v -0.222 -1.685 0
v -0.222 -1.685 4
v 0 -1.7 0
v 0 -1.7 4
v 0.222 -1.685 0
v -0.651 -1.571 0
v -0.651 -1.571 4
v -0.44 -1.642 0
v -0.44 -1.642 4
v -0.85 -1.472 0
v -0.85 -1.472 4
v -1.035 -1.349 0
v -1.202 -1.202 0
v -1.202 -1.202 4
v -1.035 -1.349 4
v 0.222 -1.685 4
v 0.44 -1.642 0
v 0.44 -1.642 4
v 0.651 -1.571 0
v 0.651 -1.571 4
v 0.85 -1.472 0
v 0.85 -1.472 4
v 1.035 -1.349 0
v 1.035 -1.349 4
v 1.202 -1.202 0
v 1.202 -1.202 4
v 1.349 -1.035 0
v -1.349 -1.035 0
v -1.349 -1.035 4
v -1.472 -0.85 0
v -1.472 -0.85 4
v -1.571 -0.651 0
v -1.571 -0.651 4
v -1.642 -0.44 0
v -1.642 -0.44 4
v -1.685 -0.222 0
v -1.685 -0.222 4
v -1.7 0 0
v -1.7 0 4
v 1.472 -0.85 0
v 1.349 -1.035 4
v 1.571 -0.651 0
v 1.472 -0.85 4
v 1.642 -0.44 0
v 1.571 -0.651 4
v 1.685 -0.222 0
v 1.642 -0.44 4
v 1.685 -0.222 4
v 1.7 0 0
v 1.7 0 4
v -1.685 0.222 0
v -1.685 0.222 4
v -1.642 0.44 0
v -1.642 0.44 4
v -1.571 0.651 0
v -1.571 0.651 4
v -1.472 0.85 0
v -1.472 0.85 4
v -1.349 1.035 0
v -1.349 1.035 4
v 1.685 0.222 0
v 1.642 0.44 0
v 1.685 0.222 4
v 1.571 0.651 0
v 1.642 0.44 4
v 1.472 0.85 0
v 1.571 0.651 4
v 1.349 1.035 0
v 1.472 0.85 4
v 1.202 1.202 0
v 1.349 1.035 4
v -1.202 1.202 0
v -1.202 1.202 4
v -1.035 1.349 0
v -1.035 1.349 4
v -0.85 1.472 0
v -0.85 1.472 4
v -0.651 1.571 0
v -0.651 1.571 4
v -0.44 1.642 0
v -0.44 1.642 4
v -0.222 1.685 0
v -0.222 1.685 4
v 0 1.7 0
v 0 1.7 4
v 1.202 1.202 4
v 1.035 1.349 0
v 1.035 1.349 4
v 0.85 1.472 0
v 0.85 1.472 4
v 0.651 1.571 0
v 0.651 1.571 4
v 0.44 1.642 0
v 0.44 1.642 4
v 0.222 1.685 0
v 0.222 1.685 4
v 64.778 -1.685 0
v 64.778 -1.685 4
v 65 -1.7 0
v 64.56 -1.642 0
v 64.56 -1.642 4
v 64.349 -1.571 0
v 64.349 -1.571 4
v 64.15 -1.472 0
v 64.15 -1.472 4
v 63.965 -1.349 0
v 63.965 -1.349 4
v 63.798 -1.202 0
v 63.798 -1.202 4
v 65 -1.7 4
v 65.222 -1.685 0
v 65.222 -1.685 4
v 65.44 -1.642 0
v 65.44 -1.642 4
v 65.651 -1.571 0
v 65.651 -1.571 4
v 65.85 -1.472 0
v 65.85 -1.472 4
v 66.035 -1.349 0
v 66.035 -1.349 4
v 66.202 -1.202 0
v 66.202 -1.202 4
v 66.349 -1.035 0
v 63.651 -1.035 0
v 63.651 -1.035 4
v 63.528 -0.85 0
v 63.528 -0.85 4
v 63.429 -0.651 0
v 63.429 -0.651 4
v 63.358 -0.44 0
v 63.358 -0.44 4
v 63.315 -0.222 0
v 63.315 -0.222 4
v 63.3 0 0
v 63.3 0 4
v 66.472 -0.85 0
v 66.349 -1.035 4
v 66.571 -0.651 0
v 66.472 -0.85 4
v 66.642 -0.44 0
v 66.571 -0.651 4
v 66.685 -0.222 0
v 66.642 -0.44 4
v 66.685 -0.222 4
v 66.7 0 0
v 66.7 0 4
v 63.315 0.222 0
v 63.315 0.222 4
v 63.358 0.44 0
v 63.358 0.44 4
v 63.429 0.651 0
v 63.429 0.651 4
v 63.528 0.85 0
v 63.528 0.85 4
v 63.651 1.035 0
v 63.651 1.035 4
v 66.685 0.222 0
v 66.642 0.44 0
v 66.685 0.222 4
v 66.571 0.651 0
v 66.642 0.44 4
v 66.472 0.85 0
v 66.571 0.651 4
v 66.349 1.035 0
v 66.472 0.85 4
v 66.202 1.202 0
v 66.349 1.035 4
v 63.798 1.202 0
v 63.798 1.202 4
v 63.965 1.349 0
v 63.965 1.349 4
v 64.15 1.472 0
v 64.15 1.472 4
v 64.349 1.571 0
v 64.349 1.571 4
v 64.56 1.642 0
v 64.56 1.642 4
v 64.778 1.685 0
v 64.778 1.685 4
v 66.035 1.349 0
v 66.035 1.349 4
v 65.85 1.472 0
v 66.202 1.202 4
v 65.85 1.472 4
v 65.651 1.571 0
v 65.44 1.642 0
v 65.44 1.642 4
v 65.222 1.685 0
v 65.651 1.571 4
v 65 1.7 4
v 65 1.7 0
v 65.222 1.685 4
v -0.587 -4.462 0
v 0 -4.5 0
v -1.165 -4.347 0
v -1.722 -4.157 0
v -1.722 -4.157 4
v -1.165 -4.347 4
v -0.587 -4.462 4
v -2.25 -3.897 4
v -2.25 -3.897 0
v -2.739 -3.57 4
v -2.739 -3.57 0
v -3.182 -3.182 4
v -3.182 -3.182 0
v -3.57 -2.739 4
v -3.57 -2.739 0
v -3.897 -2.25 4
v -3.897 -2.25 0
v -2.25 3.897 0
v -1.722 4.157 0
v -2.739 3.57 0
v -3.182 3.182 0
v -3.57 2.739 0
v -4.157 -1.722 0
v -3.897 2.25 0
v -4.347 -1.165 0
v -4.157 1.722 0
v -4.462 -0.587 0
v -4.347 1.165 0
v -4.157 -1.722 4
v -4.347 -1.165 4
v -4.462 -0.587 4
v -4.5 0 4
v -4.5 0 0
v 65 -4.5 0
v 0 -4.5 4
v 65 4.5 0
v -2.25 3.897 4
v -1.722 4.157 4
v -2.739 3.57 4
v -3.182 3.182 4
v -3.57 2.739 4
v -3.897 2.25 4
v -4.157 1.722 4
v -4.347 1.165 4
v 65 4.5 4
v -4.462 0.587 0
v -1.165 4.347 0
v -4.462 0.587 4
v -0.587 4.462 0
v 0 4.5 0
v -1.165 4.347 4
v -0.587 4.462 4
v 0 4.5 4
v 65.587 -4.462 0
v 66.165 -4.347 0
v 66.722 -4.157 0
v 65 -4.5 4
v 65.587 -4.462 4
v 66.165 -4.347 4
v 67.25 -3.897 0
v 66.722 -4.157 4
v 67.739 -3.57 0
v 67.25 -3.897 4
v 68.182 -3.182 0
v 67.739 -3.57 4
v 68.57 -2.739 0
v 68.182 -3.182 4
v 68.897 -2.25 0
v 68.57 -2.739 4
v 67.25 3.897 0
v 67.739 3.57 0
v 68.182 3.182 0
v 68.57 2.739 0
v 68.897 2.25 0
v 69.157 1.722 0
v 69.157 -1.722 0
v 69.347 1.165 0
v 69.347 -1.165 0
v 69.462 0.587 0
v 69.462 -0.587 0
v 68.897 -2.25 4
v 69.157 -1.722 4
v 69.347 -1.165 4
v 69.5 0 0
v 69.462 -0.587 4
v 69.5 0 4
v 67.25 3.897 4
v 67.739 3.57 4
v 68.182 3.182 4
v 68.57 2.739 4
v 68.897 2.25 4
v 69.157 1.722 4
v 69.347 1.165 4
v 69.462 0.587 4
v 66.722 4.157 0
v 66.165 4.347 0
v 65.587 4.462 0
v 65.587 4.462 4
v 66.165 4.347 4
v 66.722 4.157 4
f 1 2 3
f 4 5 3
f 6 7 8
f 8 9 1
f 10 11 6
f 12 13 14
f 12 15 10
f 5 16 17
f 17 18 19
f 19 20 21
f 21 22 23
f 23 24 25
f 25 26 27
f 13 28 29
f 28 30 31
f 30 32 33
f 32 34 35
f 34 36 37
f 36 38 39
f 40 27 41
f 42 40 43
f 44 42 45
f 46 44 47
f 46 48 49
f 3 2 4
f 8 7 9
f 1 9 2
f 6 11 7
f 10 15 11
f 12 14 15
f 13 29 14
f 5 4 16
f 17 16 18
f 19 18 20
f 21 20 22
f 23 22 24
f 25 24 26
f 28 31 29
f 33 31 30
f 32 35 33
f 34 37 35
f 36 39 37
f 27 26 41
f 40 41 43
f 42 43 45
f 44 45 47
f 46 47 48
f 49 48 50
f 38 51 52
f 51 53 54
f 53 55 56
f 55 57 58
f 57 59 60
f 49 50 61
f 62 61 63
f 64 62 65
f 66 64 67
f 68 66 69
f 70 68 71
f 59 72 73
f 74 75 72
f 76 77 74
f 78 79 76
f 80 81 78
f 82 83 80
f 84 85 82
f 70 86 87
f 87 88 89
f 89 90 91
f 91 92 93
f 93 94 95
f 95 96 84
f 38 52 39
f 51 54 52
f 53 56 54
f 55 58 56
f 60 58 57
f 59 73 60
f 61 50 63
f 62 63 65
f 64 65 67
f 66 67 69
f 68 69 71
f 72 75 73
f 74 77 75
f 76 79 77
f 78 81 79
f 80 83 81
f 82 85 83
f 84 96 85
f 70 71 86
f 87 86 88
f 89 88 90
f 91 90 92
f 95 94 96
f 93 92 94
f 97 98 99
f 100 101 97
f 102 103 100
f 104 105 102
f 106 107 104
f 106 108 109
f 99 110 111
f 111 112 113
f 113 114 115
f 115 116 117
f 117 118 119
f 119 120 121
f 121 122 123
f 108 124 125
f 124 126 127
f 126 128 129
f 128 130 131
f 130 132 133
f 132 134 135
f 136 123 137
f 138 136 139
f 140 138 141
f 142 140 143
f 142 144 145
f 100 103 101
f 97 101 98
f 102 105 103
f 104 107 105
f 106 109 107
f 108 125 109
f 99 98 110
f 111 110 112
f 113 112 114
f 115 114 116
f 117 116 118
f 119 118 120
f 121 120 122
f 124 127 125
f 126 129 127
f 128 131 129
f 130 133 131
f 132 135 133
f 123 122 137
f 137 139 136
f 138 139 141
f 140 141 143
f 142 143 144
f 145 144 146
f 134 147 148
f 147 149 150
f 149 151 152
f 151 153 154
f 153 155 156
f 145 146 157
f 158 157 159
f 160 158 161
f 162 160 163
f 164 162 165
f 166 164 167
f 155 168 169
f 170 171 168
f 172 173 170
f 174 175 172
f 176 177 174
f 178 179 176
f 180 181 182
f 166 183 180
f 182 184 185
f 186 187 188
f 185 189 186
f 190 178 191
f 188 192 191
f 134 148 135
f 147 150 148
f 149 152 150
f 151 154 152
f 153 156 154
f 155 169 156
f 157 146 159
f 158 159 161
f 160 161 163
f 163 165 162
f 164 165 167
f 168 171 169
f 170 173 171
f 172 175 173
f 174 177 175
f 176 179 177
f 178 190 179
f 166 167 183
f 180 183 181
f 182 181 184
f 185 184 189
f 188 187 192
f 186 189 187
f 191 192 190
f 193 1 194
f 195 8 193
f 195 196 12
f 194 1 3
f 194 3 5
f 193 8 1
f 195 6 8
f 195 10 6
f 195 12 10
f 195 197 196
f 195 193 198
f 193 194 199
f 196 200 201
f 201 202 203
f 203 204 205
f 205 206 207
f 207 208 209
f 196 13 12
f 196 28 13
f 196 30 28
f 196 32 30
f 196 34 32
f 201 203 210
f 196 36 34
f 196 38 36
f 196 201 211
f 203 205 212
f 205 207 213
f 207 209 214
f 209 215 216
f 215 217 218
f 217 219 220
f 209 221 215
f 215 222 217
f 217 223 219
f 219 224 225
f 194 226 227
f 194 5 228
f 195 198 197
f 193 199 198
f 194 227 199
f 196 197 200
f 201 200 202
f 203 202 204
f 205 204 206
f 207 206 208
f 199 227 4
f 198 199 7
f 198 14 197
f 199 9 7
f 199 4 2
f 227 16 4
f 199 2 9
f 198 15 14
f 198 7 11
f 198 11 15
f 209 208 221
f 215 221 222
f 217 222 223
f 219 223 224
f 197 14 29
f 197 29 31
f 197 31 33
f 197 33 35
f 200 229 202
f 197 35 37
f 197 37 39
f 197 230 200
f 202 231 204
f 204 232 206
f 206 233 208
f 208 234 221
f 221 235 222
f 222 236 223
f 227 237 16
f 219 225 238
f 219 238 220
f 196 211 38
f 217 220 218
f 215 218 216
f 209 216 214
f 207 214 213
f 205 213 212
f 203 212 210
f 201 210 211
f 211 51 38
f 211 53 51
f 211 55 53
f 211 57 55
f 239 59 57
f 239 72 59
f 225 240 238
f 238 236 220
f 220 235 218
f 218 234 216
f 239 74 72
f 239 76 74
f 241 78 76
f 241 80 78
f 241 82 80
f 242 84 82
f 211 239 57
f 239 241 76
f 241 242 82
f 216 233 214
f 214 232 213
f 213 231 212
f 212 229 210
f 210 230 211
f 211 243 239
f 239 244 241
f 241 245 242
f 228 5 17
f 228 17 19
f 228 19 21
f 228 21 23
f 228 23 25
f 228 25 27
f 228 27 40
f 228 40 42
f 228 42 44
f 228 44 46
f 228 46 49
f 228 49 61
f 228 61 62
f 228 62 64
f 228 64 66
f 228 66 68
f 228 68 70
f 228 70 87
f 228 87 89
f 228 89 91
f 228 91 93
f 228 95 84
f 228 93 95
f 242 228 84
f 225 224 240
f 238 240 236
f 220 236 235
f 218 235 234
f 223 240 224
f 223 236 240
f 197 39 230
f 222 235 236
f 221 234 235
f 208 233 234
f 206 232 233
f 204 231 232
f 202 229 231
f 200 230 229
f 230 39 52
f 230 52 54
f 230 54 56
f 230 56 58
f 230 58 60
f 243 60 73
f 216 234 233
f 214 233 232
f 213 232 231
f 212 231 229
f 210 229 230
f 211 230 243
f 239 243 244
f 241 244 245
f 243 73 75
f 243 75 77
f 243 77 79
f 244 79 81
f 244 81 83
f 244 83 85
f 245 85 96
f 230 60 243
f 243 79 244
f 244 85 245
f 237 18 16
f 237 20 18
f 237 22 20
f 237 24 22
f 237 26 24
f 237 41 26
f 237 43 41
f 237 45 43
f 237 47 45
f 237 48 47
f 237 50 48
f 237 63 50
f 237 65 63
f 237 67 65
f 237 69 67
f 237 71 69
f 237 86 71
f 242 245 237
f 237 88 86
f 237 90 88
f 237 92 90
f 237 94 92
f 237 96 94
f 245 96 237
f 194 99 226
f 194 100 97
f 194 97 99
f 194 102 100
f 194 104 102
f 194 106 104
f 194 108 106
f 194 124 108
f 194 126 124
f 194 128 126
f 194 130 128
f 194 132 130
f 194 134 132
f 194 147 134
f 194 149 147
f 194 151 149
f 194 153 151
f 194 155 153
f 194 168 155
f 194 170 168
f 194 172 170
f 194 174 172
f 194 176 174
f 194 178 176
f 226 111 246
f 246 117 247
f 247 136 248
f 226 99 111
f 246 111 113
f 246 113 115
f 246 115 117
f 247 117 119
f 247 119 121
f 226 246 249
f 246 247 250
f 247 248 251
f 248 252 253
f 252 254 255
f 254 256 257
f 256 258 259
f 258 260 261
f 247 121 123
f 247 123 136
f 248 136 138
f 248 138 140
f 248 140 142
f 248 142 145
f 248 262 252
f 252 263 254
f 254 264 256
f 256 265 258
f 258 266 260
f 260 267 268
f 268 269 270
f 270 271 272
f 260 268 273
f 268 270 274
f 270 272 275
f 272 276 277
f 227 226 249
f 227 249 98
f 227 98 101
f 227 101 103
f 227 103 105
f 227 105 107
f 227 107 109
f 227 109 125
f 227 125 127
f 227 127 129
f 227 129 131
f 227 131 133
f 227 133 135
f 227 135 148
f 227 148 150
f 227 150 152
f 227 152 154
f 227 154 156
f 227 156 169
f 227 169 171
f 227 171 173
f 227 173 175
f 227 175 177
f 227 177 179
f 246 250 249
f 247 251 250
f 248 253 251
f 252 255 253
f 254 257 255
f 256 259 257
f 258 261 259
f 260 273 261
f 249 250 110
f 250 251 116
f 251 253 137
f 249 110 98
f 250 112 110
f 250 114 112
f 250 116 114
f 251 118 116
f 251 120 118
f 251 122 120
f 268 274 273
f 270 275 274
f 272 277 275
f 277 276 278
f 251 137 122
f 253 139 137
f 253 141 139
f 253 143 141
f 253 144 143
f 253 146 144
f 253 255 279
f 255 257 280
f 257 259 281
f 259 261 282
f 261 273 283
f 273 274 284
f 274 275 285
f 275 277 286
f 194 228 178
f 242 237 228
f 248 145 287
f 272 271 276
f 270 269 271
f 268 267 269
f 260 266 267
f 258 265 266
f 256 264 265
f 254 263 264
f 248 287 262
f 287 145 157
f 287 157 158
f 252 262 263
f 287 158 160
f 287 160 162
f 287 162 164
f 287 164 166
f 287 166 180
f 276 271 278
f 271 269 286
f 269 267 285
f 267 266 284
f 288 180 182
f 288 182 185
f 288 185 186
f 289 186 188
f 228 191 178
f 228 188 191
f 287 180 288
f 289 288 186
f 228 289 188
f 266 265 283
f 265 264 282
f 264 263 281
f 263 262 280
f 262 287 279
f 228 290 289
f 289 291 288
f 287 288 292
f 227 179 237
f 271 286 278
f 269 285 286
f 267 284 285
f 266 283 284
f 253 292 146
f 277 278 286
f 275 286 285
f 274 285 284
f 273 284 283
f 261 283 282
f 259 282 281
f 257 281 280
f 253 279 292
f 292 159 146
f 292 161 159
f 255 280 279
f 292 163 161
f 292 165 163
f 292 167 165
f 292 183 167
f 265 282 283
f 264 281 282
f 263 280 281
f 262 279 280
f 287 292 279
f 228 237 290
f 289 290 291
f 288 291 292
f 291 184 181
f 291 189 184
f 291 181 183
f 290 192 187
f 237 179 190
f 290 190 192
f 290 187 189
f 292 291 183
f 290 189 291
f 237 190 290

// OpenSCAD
// PROVISIONAL lower rigid rod, original servo horn to bell crank.
include <parameters.scad>
$fn = 48;
assert(bell_lower_rod_length > stage2_rod_width + 10);
assert(stage2_rod_width > stage2_pivot_hole_d + 4);

module pushrod_servo() {
    difference() {
        linear_extrude(height = stage2_rod_thickness)
            hull() {
                circle(d = stage2_rod_width);
                translate([bell_lower_rod_length, 0]) circle(d = stage2_rod_width);
            }
        for (x = [0, bell_lower_rod_length])
            translate([x, 0, -0.1])
                cylinder(d = stage2_pivot_hole_d,
                         h = stage2_rod_thickness + 0.2);
    }
}

pushrod_servo();
